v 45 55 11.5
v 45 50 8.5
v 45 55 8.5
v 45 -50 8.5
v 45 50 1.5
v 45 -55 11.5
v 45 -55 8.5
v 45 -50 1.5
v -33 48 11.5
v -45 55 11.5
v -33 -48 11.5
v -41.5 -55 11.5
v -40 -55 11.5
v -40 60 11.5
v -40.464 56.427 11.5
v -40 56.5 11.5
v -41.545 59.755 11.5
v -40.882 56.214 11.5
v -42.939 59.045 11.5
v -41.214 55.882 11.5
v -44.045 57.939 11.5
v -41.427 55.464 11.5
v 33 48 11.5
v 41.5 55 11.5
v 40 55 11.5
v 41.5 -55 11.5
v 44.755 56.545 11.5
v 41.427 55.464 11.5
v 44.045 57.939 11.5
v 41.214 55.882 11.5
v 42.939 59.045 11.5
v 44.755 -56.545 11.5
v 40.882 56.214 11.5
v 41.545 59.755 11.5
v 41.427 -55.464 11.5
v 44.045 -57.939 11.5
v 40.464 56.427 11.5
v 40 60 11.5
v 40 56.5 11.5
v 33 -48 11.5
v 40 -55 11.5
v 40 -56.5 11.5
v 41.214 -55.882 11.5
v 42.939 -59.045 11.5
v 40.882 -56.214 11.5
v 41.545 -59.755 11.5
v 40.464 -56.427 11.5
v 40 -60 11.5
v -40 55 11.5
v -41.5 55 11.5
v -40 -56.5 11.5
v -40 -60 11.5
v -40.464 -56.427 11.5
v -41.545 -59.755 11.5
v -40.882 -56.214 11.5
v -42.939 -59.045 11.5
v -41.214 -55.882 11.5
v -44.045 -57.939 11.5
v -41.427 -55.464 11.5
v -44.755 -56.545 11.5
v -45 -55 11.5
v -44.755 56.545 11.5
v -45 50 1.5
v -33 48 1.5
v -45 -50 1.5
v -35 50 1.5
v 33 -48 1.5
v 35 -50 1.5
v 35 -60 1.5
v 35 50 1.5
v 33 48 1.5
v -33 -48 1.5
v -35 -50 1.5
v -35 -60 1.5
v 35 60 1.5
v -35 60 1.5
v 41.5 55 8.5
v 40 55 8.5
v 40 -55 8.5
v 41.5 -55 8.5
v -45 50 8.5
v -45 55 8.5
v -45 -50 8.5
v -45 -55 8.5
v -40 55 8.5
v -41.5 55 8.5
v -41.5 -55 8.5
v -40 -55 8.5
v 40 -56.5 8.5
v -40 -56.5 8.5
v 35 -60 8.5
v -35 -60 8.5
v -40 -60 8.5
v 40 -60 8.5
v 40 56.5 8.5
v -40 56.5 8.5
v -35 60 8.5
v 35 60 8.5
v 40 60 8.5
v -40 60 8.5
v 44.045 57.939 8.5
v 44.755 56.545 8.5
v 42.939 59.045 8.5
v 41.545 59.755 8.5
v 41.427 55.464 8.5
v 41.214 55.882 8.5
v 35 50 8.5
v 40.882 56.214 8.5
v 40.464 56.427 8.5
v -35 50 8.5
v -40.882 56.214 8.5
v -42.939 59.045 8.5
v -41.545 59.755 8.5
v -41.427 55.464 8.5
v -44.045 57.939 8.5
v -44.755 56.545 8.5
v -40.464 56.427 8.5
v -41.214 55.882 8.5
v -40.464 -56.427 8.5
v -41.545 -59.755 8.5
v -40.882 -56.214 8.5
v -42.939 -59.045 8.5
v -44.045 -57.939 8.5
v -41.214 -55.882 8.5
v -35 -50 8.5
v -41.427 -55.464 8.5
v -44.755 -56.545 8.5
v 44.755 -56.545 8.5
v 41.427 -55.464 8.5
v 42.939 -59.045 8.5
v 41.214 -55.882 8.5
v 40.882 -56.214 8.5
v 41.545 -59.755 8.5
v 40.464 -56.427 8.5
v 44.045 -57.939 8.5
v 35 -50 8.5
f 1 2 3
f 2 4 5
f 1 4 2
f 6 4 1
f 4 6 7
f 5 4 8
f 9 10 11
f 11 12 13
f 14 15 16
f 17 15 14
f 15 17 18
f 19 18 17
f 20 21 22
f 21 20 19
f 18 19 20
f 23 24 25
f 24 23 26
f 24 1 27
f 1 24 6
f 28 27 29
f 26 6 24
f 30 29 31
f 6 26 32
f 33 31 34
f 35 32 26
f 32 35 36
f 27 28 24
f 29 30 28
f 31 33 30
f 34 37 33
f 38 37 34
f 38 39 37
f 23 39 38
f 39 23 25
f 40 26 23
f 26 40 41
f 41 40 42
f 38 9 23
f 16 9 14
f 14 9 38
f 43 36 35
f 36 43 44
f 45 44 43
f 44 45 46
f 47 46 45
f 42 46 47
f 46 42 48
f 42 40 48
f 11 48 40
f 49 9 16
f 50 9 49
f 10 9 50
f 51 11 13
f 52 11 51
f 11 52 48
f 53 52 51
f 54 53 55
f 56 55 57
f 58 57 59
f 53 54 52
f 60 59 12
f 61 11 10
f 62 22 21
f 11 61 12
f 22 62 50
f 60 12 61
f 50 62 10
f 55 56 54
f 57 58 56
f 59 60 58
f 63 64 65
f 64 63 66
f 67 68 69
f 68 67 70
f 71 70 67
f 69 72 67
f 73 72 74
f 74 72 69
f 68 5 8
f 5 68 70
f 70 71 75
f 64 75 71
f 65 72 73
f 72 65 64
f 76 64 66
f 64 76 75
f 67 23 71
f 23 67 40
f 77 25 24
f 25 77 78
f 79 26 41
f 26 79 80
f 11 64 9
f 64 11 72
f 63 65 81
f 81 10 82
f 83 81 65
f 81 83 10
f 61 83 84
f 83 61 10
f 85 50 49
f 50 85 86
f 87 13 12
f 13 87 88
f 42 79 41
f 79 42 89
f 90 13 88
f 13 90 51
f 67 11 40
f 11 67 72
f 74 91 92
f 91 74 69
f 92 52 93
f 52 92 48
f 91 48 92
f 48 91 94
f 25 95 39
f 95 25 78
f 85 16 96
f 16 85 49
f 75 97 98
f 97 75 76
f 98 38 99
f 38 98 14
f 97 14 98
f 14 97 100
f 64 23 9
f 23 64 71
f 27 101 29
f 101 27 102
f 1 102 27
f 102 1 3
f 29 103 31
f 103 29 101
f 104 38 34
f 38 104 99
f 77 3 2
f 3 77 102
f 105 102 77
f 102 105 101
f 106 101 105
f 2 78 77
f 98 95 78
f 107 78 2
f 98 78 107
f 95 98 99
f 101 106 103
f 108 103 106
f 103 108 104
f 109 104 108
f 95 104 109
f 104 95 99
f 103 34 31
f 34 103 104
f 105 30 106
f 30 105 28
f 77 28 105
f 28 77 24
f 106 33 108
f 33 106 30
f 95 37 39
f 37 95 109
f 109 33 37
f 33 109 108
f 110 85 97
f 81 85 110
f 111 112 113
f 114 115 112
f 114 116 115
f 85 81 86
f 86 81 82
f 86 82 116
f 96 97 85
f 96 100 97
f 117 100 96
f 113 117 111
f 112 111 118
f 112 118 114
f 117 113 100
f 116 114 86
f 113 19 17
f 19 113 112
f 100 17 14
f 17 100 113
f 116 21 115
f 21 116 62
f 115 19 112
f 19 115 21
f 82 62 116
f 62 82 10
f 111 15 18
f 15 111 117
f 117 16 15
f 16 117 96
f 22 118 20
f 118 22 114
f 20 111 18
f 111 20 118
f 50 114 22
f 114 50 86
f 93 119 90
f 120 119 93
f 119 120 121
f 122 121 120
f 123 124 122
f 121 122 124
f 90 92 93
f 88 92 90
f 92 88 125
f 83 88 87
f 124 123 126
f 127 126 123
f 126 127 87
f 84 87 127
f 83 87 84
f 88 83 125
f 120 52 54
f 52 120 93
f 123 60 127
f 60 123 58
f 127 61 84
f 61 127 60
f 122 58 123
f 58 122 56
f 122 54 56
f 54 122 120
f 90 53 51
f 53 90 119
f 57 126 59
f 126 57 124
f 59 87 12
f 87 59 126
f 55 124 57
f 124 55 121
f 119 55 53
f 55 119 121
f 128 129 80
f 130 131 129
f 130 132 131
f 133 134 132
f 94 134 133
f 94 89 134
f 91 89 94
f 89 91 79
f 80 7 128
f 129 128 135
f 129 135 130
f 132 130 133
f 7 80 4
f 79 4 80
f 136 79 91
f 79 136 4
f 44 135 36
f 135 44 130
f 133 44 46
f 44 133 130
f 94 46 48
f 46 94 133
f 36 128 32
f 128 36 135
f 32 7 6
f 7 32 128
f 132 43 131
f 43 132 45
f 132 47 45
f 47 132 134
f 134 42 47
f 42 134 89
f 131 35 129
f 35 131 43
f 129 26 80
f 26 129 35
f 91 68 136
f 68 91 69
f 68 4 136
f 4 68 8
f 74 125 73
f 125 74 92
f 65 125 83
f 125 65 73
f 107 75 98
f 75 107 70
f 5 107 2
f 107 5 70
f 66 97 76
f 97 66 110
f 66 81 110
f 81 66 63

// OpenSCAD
// file: flight_controller_vert_screw_holes.scad
module flight_controller_vert_screw_holes(hole_x, hole_y, bore_diameter, height, fn) {
    translate([hole_x/2, hole_y/2, 0])
        cylinder(d=bore_diameter, h=height, $fn=fn);
    
    translate([-hole_x/2, hole_y/2, 0])
        cylinder(d=bore_diameter, h=height, $fn=fn);
    
    translate([-hole_x/2, -hole_y/2, 0])
        cylinder(d=bore_diameter, h=height, $fn=fn);
    
    translate([hole_x/2, -hole_y/2, 0])
        cylinder(d=bore_diameter, h=height, $fn=fn);
}
// file: includes/rounded_cube.scad
// Higher definition curves
$fs = 0.01;

module rounded_cube(size = [1, 1, 1], center = false, radius = 0.5, apply_to = "all") {
	// If single value, convert to [x, y, z] vector
	size = (size[0] == undef) ? [size, size, size] : size;

	translate_min = radius;
	translate_xmax = size[0] - radius;
	translate_ymax = size[1] - radius;
	translate_zmax = size[2] - radius;

	diameter = radius * 2;

	module build_point(type = "sphere", rotate = [0, 0, 0]) {
		if (type == "sphere") {
			sphere(r = radius);
		} else if (type == "cylinder") {
			rotate(a = rotate)
			cylinder(h = diameter, r = radius, center = true);
		}
	}

	obj_translate = (center == false) ?
		[0, 0, 0] : [
			-(size[0] / 2),
			-(size[1] / 2),
			-(size[2] / 2)
		];

	translate(v = obj_translate) {
		hull() {
			for (translate_x = [translate_min, translate_xmax]) {
				x_at = (translate_x == translate_min) ? "min" : "max";
				for (translate_y = [translate_min, translate_ymax]) {
					y_at = (translate_y == translate_min) ? "min" : "max";
					for (translate_z = [translate_min, translate_zmax]) {
						z_at = (translate_z == translate_min) ? "min" : "max";

						translate(v = [translate_x, translate_y, translate_z])
						if (
							(apply_to == "all") ||
							(apply_to == "xmin" && x_at == "min") || (apply_to == "xmax" && x_at == "max") ||
							(apply_to == "ymin" && y_at == "min") || (apply_to == "ymax" && y_at == "max") ||
							(apply_to == "zmin" && z_at == "min") || (apply_to == "zmax" && z_at == "max")
						) {
							build_point("sphere");
						} else {
							rotate = 
								(apply_to == "xmin" || apply_to == "xmax" || apply_to == "x") ? [0, 90, 0] : (
								(apply_to == "ymin" || apply_to == "ymax" || apply_to == "y") ? [90, 90, 0] :
								[0, 0, 0]
							);
							build_point("cylinder", rotate);
						}
					}
				}
			}
		}
	}
}
// file: flight_controller_box_params.scad
function flight_controller_box_params() = [
    ["hole_x", 80],
    ["hole_y", 110],
    ["post_diameter", 10],
    ["bore_diameter", 3],
    ["case_z", 45],
    ["case_floor_thickness", 1.5],
    ["case_wall_thickness", 12],
    ["case_wall_height", 10],
    ["motor_mount_width", 10],
    ["motor_mount_height", 3],
    ["fn", 20],
];

// usage: find(params, "hole_x");
function find(h,k)= h[search([k], h, 1)[0]][1];
// main file
use <./flight_controller_box_params.scad>;
use <./includes/rounded_cube.scad>;
use <./flight_controller_vert_screw_holes.scad>;

// models the space the computer needs to float in
module pi_cutout() {
    pi_x = 65;
    pi_y = 95;
    pi_z = 26;
    translate([-pi_x/2, -pi_y/2, 12])
        rounded_cube([pi_x,pi_y,pi_z], radius=3);
}

module vertical_post(pos, d, h, bore_diameter, fn) {
    translate(pos)
        difference(){
            cylinder(d=d, h=h, $fn=fn);
            cylinder(d=bore_diameter, h=h, $fn=fn);
        }
}

module vertical_posts(hole_x, hole_y, bore_diameter, post_diameter, height, z_pos, fn) {
    difference() {
        union(){
            vertical_post([hole_x/2, hole_y/2, z_pos], post_diameter, height, bore_diameter, fn);
            vertical_post([-hole_x/2, hole_y/2, z_pos], post_diameter, height, bore_diameter, fn);
            vertical_post([-hole_x/2, -hole_y/2, z_pos], post_diameter, height, bore_diameter, fn);
            vertical_post([hole_x/2, -hole_y/2, z_pos], post_diameter, height, bore_diameter, fn);
        }
    }
}

module side_walls(case_x, case_y, hole_x, hole_y, case_floor, case_wall_thickness, case_wall_height, post_diameter) {
    translate([case_x/2-case_wall_thickness, -hole_y/2, case_floor])
        cube([case_wall_thickness, case_y-post_diameter, case_wall_height]);
    
    translate([-case_x/2, -hole_y/2, case_floor])
        cube([case_wall_thickness, case_y-post_diameter, case_wall_height]);
    
    translate([-hole_x/2, -case_y/2, case_floor])
        cube([case_x-post_diameter, case_wall_thickness, case_wall_height]);
    
    translate([-hole_x/2, case_y/2-case_wall_thickness, case_floor])
        cube([case_x-post_diameter, case_wall_thickness, case_wall_height]);
}

module lift_arm_mount_recess(case_x, case_y, hole_x, hole_y, case_floor, case_wall_thickness) {
    w = 10;
    h = 7;
    translate([case_x/2-w, -hole_y/2-w/2, case_floor])
        cube([w, w, h]);
    
    translate([-case_x/2, -hole_y/2-w/2, case_floor])
        cube([w, w, h]);
    
    translate([hole_x/2-w/2, case_y/2-w, case_floor])
        cube([w, w, h]);
    
    translate([-hole_x/2-w/2, case_y/2-w, case_floor])
        cube([w, w, h]);
}

module flight_controller_wall_body(hole_x, hole_y, post_diameter, bore_diameter, case_z, case_floor, case_wall_thickness, case_wall_height, fn) {
    case_x = hole_x + post_diameter;
    case_y = hole_y + post_diameter;
    difference() {
        union() {
            
            side_walls(case_x,
                case_y,
                hole_x,
                hole_y,
                case_floor,
                case_wall_thickness,
                case_wall_height,
                post_diameter);
            vertical_posts(hole_x, hole_y, bore_diameter, post_diameter, 3, case_floor+7, fn);
        }
        lift_arm_mount_recess(case_x, case_y, hole_x, hole_y, case_floor, case_wall_thickness);
    }
}

module flight_controller_wall_body_part() {
    params = flight_controller_box_params();
    flight_controller_wall_body(
        find(params, "hole_x"),
        find(params, "hole_y"),
        find(params, "post_diameter"),
        find(params, "bore_diameter"),
        find(params, "case_z"),
        find(params, "case_floor_thickness"),
        find(params, "case_wall_thickness"),
        find(params, "case_wall_height"),
        find(params, "fn"));
}

flight_controller_wall_body_part();
